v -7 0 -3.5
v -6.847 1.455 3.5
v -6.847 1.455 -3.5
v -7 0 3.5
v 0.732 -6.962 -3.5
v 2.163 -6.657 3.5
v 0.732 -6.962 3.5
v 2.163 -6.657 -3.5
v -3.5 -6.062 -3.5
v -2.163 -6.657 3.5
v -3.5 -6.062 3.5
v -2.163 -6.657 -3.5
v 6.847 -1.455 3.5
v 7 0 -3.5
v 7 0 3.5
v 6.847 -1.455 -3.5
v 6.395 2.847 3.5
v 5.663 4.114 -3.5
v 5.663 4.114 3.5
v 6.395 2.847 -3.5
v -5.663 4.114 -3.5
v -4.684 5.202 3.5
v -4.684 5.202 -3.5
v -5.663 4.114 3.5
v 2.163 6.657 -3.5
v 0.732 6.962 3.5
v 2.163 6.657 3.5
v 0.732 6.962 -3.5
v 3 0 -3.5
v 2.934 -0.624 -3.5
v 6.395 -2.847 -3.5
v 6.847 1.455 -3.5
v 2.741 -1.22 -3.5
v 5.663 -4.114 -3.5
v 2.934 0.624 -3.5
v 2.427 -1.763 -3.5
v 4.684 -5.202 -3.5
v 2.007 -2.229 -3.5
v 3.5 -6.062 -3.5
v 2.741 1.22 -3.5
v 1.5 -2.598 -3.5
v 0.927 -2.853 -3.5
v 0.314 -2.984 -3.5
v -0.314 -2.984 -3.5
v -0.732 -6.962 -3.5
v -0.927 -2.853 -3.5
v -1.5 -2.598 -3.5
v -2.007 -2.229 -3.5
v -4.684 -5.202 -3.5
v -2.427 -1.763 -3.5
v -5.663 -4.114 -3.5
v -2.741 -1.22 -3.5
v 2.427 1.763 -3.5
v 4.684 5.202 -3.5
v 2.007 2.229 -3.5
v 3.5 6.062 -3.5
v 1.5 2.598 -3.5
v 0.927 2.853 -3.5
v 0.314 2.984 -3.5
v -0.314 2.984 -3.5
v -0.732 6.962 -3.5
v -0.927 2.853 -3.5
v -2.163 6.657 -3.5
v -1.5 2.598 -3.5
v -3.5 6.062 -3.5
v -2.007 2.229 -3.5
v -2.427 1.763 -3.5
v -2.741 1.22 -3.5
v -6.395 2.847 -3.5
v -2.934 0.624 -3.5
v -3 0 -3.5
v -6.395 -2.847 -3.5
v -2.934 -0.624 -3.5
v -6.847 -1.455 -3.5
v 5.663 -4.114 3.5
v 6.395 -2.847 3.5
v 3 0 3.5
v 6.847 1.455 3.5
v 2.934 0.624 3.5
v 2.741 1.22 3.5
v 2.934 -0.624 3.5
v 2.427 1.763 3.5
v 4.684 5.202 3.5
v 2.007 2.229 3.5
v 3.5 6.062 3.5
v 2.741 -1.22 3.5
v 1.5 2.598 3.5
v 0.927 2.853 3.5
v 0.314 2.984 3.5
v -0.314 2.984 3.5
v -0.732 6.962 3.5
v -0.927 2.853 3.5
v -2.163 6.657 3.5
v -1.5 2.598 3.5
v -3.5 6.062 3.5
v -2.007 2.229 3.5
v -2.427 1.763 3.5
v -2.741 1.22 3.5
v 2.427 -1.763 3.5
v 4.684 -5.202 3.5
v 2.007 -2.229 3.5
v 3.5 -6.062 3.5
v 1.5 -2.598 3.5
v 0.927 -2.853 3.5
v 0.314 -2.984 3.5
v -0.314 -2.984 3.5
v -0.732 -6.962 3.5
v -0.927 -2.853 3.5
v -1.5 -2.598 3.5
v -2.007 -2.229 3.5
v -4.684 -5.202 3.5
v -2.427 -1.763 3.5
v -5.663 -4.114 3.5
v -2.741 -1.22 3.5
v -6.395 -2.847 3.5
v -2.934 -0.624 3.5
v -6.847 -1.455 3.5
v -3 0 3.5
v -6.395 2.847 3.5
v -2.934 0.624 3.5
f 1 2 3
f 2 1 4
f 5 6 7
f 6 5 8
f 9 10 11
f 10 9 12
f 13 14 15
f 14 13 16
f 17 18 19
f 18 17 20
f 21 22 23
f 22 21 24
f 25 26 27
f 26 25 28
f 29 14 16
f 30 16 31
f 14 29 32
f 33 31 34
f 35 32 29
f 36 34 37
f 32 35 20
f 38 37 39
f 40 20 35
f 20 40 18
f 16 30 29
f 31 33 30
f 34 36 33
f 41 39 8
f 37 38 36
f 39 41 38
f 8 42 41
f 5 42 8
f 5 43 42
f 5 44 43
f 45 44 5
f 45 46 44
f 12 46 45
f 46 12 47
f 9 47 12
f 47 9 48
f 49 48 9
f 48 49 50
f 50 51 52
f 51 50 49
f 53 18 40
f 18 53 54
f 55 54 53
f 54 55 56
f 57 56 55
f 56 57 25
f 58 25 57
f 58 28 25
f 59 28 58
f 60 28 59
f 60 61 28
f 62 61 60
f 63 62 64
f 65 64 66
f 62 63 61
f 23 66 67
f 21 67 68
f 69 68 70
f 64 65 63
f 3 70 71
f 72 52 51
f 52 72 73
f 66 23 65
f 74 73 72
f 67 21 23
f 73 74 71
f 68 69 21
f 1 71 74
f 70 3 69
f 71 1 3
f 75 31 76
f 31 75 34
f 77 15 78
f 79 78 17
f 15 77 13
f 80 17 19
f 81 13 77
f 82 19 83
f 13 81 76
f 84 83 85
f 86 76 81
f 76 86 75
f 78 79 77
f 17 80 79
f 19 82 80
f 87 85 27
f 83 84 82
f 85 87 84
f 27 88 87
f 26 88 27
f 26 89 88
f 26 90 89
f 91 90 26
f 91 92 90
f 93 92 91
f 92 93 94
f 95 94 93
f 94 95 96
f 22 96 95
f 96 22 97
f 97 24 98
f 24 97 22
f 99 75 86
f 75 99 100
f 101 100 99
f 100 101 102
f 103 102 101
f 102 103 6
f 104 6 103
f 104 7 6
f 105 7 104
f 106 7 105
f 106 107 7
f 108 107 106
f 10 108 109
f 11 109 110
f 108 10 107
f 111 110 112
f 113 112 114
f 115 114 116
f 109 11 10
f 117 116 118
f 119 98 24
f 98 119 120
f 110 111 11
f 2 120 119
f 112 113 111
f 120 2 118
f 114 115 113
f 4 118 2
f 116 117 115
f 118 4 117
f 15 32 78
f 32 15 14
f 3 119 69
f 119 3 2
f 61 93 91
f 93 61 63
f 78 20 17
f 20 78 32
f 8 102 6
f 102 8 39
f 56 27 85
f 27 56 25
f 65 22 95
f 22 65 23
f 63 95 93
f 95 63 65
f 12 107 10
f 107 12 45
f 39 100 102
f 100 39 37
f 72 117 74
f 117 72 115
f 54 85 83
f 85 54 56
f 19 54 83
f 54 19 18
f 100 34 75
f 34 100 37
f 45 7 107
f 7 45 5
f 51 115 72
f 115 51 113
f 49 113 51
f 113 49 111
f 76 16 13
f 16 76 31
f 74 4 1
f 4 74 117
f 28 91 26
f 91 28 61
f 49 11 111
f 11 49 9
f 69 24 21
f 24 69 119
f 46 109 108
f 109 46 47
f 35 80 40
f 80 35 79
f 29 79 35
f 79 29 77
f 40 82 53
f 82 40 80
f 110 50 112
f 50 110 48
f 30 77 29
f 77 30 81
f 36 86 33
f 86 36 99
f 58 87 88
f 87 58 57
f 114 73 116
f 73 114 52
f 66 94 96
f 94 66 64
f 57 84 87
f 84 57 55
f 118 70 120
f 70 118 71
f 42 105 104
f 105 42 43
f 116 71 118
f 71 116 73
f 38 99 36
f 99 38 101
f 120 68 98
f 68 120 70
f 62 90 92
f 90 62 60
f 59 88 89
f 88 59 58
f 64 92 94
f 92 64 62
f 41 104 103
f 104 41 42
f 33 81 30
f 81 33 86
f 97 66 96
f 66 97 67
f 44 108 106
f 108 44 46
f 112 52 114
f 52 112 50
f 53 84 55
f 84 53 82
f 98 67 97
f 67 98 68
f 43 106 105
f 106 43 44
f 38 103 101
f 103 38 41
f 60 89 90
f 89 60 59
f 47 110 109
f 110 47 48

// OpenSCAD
$fn=30;
difference() {
    cylinder(7, 7, 7, center=true);
    cylinder(10, 3, 3, center=true);
}
